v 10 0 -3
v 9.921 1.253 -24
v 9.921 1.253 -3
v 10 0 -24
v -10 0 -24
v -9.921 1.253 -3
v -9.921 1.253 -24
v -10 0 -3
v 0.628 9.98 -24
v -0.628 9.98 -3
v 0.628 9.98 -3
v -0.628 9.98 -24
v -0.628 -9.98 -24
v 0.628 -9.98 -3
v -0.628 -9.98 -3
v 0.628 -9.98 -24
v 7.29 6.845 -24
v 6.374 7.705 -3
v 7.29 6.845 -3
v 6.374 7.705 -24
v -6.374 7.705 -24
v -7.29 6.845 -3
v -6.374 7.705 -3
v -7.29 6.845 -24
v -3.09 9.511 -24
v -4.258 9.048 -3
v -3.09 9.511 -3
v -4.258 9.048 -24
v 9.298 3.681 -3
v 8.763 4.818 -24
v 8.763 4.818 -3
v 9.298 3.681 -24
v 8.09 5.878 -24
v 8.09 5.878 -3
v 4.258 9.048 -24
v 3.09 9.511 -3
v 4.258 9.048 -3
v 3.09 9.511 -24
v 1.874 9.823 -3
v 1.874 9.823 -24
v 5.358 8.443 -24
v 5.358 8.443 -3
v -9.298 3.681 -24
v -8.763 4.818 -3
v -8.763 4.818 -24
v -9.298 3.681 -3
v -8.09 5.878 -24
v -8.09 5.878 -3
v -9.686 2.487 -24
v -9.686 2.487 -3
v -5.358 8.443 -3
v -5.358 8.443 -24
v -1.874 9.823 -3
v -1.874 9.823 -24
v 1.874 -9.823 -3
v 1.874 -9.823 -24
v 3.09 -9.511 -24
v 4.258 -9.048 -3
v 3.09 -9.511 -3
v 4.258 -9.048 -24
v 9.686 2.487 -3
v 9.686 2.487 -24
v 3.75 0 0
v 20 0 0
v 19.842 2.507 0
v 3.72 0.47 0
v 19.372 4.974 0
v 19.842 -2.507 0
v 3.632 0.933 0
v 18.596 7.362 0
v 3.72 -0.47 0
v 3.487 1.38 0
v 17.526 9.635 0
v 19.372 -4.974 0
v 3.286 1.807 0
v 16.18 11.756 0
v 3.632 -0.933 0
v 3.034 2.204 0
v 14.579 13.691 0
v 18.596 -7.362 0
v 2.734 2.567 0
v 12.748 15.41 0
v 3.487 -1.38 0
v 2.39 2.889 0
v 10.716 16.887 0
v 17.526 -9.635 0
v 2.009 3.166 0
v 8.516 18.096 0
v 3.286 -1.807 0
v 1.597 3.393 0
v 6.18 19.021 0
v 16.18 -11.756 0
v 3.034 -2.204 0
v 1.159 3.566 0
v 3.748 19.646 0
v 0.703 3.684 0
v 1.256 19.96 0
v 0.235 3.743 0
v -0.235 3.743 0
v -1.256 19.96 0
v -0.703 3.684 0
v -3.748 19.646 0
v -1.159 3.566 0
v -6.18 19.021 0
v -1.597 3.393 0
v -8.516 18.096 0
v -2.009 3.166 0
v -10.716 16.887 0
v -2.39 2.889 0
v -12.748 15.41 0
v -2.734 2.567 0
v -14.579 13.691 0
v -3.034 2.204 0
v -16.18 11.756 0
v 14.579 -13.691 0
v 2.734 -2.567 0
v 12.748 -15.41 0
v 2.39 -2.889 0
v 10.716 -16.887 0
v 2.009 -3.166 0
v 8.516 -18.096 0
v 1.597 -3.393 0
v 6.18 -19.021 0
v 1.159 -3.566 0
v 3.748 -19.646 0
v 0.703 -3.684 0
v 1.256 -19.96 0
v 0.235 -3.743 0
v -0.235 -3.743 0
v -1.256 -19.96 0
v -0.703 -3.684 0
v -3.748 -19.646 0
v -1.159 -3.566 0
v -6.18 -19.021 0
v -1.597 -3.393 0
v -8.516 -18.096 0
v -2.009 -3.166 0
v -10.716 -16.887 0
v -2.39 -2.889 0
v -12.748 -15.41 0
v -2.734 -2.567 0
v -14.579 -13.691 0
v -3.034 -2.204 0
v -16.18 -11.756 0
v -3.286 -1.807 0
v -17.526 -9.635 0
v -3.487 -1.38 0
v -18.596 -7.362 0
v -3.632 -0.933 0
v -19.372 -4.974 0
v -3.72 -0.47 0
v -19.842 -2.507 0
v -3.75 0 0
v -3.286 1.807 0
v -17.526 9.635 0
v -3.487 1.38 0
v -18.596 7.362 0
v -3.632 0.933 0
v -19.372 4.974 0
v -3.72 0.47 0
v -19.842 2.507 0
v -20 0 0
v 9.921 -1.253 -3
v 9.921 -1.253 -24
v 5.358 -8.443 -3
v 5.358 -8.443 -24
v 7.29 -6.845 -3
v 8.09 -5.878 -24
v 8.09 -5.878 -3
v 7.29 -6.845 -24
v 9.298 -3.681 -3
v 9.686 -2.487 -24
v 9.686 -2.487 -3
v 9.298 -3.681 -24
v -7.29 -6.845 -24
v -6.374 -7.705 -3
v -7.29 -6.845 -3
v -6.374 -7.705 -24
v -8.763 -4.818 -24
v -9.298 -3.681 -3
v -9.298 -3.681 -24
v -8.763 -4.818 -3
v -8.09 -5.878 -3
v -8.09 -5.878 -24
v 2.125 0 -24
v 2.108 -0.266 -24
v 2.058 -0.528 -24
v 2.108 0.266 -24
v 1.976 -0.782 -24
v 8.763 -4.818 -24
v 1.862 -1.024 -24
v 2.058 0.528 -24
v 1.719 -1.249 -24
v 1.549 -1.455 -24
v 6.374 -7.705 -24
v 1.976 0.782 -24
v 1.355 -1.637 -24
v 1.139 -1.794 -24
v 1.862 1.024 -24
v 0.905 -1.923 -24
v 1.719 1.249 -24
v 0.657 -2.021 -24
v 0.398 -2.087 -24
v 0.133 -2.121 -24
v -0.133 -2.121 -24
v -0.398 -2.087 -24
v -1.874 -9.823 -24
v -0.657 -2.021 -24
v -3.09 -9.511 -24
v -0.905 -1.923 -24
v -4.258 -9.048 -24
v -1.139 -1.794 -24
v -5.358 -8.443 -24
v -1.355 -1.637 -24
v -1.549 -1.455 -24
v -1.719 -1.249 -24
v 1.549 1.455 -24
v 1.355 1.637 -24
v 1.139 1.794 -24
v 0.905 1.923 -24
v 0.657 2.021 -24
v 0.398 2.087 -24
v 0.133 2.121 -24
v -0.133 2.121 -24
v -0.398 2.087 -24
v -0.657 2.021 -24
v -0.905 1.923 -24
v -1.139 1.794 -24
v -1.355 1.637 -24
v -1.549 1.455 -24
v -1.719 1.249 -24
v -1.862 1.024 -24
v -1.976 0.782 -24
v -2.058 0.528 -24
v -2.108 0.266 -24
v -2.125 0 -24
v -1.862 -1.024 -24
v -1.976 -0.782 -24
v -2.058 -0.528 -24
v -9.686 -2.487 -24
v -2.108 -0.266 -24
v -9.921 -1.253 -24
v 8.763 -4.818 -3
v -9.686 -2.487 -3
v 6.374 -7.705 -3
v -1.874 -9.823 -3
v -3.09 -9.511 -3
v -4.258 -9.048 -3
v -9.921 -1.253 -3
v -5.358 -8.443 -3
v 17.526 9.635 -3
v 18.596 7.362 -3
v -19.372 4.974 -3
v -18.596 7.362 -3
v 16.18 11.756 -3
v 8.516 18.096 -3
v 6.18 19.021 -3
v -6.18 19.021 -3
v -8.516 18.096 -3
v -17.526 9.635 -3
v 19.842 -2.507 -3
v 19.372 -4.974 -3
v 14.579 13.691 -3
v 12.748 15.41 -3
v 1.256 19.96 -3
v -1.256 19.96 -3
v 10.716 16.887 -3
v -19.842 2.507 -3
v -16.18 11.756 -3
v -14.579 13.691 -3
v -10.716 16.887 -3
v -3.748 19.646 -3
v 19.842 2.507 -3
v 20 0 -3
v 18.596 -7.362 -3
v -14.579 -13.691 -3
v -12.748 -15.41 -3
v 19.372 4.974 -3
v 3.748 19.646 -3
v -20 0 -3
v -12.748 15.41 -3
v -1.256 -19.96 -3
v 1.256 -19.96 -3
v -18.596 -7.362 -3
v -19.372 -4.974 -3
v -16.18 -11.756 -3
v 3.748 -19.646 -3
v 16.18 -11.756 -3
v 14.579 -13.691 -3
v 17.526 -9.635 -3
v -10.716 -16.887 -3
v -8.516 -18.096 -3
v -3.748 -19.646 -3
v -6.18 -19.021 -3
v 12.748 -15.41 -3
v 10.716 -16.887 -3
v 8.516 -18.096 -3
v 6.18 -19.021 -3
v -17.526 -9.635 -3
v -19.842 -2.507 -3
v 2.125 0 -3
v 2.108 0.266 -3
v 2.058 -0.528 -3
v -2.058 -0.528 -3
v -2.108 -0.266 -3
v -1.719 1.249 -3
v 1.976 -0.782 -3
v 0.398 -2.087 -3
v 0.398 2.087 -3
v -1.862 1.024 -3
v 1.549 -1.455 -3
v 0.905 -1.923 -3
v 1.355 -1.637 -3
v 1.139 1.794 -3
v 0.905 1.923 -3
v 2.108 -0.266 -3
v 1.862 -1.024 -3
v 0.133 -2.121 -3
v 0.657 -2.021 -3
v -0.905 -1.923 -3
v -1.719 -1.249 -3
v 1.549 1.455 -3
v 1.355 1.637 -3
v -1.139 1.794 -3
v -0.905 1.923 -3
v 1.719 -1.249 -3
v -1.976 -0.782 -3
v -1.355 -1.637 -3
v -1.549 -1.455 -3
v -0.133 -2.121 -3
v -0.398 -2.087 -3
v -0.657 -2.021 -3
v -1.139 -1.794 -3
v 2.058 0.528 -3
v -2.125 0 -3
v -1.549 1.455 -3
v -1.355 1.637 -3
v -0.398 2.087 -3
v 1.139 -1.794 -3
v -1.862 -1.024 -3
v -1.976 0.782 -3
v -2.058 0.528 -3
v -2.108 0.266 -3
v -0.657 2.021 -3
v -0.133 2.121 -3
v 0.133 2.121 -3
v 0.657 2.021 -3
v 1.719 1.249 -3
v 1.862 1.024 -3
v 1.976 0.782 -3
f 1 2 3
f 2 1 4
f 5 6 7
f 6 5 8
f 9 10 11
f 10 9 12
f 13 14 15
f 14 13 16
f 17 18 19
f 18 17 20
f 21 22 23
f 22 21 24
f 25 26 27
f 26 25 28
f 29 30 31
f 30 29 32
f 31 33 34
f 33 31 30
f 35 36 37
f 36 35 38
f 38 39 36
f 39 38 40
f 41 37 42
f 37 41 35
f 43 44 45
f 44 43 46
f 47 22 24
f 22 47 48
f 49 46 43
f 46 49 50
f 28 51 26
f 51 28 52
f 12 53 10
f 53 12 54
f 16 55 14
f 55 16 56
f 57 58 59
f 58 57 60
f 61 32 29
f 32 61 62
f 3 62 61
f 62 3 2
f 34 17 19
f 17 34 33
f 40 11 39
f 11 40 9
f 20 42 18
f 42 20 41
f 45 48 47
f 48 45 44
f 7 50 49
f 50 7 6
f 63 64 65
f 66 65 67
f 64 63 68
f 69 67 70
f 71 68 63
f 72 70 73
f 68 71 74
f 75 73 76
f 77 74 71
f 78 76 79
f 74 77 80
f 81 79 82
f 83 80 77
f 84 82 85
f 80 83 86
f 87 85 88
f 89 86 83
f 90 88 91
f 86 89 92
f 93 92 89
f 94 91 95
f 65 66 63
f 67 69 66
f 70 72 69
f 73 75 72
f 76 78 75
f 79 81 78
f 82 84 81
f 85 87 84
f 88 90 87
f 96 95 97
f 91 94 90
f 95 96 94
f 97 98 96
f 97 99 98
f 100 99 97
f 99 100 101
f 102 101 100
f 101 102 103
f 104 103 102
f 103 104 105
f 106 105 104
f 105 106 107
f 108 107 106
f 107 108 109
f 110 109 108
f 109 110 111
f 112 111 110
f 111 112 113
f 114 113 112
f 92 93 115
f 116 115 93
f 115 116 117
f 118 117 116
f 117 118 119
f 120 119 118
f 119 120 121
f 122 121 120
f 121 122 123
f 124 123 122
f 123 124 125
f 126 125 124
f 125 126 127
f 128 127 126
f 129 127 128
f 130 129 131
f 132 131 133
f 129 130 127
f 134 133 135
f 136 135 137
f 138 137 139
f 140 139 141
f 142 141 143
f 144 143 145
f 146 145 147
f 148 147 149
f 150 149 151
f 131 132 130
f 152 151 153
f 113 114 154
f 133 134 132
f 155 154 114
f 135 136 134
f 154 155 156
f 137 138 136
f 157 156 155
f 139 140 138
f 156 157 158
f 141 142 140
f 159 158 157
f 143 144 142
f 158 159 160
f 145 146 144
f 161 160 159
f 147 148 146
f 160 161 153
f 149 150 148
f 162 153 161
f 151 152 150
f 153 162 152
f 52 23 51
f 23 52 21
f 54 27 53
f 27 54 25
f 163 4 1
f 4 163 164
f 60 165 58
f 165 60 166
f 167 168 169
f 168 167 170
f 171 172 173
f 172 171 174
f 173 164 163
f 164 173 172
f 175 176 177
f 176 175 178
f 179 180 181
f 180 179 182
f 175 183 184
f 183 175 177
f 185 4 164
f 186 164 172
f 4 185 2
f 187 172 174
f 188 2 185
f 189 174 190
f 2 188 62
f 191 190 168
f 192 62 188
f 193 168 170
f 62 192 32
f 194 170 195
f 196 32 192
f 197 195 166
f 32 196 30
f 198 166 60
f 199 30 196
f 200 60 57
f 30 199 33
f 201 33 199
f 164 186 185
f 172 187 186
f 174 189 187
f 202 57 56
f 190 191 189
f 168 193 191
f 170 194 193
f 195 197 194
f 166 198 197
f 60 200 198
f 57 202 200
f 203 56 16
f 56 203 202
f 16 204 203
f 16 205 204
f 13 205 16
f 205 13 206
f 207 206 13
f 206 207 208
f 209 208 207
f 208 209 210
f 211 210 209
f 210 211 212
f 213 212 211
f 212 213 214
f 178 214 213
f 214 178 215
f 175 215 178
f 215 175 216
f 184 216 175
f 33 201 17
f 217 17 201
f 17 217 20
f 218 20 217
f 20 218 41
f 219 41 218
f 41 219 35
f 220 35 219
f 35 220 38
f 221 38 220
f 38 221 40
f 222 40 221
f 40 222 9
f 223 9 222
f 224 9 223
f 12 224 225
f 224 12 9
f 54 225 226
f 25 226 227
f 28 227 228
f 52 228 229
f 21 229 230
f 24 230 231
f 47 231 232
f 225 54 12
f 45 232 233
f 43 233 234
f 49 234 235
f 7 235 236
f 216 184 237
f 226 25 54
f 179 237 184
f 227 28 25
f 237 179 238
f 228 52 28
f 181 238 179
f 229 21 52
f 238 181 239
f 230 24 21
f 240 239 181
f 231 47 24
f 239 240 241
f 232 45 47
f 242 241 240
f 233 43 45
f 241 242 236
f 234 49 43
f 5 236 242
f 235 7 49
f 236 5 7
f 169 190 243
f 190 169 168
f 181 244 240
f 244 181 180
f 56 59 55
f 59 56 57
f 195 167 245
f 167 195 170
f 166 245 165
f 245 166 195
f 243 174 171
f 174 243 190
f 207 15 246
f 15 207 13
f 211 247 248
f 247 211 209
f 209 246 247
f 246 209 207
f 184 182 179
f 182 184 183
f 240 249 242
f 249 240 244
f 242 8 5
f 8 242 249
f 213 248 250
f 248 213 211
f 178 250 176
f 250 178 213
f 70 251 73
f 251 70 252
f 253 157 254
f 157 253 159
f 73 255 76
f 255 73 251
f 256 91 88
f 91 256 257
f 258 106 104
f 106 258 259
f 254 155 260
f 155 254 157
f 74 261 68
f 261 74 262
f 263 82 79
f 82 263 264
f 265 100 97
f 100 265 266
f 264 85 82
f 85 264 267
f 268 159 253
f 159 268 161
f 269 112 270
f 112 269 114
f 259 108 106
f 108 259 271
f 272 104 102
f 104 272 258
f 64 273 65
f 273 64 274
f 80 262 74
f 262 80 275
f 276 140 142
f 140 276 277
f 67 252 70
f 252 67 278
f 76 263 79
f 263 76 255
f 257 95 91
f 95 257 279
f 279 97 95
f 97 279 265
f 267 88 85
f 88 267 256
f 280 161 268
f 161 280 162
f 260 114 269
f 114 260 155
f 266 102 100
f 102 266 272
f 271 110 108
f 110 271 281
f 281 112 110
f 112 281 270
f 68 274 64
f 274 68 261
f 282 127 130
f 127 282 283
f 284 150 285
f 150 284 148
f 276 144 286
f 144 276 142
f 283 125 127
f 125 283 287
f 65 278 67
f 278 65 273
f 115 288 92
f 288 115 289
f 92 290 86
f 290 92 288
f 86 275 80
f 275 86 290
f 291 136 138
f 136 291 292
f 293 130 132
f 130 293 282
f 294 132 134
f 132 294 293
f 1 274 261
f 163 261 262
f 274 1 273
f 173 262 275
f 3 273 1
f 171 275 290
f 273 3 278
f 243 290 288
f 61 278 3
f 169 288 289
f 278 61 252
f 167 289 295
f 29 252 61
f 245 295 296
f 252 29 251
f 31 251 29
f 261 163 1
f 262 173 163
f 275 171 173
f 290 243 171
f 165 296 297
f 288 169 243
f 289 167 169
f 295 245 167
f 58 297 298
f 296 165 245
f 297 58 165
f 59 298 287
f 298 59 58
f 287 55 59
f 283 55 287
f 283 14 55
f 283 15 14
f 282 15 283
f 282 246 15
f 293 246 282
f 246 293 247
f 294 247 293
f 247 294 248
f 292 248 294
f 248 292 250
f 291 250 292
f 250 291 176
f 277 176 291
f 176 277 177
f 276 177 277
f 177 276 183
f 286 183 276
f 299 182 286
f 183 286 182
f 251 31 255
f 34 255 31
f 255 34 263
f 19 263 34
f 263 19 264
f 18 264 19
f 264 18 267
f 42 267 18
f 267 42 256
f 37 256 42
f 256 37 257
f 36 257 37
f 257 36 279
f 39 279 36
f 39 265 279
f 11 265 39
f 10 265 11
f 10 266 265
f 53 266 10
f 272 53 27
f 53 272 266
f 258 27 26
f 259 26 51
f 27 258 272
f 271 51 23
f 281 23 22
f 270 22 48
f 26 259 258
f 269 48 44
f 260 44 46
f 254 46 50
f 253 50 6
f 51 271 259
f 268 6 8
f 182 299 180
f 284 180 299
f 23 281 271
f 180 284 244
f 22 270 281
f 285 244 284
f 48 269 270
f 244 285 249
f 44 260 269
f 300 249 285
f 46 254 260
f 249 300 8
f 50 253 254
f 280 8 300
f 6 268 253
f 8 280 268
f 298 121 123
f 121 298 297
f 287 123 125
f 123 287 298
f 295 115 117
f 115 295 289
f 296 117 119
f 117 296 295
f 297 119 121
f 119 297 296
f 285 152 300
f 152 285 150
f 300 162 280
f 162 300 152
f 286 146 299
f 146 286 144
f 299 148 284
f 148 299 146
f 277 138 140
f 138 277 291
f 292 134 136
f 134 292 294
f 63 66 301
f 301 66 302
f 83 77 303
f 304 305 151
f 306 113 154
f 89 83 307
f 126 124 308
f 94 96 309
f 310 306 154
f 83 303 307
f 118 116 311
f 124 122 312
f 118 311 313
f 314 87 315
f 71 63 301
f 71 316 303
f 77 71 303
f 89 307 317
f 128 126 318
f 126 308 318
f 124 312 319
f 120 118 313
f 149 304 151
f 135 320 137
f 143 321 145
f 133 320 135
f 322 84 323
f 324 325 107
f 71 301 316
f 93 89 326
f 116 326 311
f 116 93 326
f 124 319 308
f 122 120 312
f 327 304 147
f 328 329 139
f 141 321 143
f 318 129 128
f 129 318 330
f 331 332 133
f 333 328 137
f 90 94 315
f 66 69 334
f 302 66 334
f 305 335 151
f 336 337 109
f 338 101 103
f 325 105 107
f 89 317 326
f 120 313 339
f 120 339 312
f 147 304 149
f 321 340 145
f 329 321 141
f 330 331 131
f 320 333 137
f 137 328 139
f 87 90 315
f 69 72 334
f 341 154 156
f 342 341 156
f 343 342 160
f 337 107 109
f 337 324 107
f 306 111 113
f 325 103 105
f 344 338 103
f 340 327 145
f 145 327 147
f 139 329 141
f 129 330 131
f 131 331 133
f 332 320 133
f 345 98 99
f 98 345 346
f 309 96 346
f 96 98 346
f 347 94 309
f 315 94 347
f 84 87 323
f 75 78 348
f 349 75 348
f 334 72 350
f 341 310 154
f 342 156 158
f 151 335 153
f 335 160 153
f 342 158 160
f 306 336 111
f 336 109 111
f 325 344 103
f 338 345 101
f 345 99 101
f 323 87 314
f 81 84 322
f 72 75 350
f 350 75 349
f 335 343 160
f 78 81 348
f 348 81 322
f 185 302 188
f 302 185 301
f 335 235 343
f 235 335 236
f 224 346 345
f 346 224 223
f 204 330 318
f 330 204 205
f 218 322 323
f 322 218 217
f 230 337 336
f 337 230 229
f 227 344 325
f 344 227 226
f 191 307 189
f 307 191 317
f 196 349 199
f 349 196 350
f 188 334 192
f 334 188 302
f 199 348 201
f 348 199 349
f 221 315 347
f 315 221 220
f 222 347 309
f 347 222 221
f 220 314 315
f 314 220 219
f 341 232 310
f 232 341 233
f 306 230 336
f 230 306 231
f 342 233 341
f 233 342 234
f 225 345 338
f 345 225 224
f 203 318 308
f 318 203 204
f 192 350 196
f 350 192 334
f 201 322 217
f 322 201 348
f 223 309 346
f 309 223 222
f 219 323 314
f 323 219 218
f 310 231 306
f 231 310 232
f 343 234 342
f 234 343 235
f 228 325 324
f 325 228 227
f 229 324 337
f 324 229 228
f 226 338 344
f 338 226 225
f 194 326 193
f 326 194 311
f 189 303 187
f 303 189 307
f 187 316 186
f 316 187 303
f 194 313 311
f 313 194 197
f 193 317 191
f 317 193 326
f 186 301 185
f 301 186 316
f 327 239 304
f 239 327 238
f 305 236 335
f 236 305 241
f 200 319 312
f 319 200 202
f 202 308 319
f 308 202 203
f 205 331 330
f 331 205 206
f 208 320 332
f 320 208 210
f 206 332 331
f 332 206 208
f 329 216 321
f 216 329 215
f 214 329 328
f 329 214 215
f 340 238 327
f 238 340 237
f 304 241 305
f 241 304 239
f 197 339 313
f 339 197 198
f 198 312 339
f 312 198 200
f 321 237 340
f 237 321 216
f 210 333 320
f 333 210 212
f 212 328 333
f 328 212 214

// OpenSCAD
$fn = 50;


difference() {
	union() {
		translate(v = [0, 0, -24.0000000000]) {
			cylinder(h = 24, r = 10.0000000000);
		}
		translate(v = [0, 0, -3.0000000000]) {
			cylinder(h = 3, r = 20.0000000000);
		}
	}
	union() {
		translate(v = [0, 0, 0]) {
			rotate(a = [0, 0, 0]) {
				difference() {
					union() {
						#translate(v = [0, 0, -24.0000000000]) {
							cylinder(h = 24, r = 2.0000000000);
						}
						#translate(v = [0, 0, -3]) {
							cylinder(h = 3, r = 10.0000000000, r1 = 2.1250000000, r2 = 3.7500000000);
						}
						#translate(v = [0, 0, -24.0000000000]) {
							cylinder(h = 24, r = 2.1250000000);
						}
						#translate(v = [0, 0, -24.0000000000]) {
							cylinder(h = 24, r = 2.0000000000);
						}
					}
					union();
				}
			}
		}
	}
}
